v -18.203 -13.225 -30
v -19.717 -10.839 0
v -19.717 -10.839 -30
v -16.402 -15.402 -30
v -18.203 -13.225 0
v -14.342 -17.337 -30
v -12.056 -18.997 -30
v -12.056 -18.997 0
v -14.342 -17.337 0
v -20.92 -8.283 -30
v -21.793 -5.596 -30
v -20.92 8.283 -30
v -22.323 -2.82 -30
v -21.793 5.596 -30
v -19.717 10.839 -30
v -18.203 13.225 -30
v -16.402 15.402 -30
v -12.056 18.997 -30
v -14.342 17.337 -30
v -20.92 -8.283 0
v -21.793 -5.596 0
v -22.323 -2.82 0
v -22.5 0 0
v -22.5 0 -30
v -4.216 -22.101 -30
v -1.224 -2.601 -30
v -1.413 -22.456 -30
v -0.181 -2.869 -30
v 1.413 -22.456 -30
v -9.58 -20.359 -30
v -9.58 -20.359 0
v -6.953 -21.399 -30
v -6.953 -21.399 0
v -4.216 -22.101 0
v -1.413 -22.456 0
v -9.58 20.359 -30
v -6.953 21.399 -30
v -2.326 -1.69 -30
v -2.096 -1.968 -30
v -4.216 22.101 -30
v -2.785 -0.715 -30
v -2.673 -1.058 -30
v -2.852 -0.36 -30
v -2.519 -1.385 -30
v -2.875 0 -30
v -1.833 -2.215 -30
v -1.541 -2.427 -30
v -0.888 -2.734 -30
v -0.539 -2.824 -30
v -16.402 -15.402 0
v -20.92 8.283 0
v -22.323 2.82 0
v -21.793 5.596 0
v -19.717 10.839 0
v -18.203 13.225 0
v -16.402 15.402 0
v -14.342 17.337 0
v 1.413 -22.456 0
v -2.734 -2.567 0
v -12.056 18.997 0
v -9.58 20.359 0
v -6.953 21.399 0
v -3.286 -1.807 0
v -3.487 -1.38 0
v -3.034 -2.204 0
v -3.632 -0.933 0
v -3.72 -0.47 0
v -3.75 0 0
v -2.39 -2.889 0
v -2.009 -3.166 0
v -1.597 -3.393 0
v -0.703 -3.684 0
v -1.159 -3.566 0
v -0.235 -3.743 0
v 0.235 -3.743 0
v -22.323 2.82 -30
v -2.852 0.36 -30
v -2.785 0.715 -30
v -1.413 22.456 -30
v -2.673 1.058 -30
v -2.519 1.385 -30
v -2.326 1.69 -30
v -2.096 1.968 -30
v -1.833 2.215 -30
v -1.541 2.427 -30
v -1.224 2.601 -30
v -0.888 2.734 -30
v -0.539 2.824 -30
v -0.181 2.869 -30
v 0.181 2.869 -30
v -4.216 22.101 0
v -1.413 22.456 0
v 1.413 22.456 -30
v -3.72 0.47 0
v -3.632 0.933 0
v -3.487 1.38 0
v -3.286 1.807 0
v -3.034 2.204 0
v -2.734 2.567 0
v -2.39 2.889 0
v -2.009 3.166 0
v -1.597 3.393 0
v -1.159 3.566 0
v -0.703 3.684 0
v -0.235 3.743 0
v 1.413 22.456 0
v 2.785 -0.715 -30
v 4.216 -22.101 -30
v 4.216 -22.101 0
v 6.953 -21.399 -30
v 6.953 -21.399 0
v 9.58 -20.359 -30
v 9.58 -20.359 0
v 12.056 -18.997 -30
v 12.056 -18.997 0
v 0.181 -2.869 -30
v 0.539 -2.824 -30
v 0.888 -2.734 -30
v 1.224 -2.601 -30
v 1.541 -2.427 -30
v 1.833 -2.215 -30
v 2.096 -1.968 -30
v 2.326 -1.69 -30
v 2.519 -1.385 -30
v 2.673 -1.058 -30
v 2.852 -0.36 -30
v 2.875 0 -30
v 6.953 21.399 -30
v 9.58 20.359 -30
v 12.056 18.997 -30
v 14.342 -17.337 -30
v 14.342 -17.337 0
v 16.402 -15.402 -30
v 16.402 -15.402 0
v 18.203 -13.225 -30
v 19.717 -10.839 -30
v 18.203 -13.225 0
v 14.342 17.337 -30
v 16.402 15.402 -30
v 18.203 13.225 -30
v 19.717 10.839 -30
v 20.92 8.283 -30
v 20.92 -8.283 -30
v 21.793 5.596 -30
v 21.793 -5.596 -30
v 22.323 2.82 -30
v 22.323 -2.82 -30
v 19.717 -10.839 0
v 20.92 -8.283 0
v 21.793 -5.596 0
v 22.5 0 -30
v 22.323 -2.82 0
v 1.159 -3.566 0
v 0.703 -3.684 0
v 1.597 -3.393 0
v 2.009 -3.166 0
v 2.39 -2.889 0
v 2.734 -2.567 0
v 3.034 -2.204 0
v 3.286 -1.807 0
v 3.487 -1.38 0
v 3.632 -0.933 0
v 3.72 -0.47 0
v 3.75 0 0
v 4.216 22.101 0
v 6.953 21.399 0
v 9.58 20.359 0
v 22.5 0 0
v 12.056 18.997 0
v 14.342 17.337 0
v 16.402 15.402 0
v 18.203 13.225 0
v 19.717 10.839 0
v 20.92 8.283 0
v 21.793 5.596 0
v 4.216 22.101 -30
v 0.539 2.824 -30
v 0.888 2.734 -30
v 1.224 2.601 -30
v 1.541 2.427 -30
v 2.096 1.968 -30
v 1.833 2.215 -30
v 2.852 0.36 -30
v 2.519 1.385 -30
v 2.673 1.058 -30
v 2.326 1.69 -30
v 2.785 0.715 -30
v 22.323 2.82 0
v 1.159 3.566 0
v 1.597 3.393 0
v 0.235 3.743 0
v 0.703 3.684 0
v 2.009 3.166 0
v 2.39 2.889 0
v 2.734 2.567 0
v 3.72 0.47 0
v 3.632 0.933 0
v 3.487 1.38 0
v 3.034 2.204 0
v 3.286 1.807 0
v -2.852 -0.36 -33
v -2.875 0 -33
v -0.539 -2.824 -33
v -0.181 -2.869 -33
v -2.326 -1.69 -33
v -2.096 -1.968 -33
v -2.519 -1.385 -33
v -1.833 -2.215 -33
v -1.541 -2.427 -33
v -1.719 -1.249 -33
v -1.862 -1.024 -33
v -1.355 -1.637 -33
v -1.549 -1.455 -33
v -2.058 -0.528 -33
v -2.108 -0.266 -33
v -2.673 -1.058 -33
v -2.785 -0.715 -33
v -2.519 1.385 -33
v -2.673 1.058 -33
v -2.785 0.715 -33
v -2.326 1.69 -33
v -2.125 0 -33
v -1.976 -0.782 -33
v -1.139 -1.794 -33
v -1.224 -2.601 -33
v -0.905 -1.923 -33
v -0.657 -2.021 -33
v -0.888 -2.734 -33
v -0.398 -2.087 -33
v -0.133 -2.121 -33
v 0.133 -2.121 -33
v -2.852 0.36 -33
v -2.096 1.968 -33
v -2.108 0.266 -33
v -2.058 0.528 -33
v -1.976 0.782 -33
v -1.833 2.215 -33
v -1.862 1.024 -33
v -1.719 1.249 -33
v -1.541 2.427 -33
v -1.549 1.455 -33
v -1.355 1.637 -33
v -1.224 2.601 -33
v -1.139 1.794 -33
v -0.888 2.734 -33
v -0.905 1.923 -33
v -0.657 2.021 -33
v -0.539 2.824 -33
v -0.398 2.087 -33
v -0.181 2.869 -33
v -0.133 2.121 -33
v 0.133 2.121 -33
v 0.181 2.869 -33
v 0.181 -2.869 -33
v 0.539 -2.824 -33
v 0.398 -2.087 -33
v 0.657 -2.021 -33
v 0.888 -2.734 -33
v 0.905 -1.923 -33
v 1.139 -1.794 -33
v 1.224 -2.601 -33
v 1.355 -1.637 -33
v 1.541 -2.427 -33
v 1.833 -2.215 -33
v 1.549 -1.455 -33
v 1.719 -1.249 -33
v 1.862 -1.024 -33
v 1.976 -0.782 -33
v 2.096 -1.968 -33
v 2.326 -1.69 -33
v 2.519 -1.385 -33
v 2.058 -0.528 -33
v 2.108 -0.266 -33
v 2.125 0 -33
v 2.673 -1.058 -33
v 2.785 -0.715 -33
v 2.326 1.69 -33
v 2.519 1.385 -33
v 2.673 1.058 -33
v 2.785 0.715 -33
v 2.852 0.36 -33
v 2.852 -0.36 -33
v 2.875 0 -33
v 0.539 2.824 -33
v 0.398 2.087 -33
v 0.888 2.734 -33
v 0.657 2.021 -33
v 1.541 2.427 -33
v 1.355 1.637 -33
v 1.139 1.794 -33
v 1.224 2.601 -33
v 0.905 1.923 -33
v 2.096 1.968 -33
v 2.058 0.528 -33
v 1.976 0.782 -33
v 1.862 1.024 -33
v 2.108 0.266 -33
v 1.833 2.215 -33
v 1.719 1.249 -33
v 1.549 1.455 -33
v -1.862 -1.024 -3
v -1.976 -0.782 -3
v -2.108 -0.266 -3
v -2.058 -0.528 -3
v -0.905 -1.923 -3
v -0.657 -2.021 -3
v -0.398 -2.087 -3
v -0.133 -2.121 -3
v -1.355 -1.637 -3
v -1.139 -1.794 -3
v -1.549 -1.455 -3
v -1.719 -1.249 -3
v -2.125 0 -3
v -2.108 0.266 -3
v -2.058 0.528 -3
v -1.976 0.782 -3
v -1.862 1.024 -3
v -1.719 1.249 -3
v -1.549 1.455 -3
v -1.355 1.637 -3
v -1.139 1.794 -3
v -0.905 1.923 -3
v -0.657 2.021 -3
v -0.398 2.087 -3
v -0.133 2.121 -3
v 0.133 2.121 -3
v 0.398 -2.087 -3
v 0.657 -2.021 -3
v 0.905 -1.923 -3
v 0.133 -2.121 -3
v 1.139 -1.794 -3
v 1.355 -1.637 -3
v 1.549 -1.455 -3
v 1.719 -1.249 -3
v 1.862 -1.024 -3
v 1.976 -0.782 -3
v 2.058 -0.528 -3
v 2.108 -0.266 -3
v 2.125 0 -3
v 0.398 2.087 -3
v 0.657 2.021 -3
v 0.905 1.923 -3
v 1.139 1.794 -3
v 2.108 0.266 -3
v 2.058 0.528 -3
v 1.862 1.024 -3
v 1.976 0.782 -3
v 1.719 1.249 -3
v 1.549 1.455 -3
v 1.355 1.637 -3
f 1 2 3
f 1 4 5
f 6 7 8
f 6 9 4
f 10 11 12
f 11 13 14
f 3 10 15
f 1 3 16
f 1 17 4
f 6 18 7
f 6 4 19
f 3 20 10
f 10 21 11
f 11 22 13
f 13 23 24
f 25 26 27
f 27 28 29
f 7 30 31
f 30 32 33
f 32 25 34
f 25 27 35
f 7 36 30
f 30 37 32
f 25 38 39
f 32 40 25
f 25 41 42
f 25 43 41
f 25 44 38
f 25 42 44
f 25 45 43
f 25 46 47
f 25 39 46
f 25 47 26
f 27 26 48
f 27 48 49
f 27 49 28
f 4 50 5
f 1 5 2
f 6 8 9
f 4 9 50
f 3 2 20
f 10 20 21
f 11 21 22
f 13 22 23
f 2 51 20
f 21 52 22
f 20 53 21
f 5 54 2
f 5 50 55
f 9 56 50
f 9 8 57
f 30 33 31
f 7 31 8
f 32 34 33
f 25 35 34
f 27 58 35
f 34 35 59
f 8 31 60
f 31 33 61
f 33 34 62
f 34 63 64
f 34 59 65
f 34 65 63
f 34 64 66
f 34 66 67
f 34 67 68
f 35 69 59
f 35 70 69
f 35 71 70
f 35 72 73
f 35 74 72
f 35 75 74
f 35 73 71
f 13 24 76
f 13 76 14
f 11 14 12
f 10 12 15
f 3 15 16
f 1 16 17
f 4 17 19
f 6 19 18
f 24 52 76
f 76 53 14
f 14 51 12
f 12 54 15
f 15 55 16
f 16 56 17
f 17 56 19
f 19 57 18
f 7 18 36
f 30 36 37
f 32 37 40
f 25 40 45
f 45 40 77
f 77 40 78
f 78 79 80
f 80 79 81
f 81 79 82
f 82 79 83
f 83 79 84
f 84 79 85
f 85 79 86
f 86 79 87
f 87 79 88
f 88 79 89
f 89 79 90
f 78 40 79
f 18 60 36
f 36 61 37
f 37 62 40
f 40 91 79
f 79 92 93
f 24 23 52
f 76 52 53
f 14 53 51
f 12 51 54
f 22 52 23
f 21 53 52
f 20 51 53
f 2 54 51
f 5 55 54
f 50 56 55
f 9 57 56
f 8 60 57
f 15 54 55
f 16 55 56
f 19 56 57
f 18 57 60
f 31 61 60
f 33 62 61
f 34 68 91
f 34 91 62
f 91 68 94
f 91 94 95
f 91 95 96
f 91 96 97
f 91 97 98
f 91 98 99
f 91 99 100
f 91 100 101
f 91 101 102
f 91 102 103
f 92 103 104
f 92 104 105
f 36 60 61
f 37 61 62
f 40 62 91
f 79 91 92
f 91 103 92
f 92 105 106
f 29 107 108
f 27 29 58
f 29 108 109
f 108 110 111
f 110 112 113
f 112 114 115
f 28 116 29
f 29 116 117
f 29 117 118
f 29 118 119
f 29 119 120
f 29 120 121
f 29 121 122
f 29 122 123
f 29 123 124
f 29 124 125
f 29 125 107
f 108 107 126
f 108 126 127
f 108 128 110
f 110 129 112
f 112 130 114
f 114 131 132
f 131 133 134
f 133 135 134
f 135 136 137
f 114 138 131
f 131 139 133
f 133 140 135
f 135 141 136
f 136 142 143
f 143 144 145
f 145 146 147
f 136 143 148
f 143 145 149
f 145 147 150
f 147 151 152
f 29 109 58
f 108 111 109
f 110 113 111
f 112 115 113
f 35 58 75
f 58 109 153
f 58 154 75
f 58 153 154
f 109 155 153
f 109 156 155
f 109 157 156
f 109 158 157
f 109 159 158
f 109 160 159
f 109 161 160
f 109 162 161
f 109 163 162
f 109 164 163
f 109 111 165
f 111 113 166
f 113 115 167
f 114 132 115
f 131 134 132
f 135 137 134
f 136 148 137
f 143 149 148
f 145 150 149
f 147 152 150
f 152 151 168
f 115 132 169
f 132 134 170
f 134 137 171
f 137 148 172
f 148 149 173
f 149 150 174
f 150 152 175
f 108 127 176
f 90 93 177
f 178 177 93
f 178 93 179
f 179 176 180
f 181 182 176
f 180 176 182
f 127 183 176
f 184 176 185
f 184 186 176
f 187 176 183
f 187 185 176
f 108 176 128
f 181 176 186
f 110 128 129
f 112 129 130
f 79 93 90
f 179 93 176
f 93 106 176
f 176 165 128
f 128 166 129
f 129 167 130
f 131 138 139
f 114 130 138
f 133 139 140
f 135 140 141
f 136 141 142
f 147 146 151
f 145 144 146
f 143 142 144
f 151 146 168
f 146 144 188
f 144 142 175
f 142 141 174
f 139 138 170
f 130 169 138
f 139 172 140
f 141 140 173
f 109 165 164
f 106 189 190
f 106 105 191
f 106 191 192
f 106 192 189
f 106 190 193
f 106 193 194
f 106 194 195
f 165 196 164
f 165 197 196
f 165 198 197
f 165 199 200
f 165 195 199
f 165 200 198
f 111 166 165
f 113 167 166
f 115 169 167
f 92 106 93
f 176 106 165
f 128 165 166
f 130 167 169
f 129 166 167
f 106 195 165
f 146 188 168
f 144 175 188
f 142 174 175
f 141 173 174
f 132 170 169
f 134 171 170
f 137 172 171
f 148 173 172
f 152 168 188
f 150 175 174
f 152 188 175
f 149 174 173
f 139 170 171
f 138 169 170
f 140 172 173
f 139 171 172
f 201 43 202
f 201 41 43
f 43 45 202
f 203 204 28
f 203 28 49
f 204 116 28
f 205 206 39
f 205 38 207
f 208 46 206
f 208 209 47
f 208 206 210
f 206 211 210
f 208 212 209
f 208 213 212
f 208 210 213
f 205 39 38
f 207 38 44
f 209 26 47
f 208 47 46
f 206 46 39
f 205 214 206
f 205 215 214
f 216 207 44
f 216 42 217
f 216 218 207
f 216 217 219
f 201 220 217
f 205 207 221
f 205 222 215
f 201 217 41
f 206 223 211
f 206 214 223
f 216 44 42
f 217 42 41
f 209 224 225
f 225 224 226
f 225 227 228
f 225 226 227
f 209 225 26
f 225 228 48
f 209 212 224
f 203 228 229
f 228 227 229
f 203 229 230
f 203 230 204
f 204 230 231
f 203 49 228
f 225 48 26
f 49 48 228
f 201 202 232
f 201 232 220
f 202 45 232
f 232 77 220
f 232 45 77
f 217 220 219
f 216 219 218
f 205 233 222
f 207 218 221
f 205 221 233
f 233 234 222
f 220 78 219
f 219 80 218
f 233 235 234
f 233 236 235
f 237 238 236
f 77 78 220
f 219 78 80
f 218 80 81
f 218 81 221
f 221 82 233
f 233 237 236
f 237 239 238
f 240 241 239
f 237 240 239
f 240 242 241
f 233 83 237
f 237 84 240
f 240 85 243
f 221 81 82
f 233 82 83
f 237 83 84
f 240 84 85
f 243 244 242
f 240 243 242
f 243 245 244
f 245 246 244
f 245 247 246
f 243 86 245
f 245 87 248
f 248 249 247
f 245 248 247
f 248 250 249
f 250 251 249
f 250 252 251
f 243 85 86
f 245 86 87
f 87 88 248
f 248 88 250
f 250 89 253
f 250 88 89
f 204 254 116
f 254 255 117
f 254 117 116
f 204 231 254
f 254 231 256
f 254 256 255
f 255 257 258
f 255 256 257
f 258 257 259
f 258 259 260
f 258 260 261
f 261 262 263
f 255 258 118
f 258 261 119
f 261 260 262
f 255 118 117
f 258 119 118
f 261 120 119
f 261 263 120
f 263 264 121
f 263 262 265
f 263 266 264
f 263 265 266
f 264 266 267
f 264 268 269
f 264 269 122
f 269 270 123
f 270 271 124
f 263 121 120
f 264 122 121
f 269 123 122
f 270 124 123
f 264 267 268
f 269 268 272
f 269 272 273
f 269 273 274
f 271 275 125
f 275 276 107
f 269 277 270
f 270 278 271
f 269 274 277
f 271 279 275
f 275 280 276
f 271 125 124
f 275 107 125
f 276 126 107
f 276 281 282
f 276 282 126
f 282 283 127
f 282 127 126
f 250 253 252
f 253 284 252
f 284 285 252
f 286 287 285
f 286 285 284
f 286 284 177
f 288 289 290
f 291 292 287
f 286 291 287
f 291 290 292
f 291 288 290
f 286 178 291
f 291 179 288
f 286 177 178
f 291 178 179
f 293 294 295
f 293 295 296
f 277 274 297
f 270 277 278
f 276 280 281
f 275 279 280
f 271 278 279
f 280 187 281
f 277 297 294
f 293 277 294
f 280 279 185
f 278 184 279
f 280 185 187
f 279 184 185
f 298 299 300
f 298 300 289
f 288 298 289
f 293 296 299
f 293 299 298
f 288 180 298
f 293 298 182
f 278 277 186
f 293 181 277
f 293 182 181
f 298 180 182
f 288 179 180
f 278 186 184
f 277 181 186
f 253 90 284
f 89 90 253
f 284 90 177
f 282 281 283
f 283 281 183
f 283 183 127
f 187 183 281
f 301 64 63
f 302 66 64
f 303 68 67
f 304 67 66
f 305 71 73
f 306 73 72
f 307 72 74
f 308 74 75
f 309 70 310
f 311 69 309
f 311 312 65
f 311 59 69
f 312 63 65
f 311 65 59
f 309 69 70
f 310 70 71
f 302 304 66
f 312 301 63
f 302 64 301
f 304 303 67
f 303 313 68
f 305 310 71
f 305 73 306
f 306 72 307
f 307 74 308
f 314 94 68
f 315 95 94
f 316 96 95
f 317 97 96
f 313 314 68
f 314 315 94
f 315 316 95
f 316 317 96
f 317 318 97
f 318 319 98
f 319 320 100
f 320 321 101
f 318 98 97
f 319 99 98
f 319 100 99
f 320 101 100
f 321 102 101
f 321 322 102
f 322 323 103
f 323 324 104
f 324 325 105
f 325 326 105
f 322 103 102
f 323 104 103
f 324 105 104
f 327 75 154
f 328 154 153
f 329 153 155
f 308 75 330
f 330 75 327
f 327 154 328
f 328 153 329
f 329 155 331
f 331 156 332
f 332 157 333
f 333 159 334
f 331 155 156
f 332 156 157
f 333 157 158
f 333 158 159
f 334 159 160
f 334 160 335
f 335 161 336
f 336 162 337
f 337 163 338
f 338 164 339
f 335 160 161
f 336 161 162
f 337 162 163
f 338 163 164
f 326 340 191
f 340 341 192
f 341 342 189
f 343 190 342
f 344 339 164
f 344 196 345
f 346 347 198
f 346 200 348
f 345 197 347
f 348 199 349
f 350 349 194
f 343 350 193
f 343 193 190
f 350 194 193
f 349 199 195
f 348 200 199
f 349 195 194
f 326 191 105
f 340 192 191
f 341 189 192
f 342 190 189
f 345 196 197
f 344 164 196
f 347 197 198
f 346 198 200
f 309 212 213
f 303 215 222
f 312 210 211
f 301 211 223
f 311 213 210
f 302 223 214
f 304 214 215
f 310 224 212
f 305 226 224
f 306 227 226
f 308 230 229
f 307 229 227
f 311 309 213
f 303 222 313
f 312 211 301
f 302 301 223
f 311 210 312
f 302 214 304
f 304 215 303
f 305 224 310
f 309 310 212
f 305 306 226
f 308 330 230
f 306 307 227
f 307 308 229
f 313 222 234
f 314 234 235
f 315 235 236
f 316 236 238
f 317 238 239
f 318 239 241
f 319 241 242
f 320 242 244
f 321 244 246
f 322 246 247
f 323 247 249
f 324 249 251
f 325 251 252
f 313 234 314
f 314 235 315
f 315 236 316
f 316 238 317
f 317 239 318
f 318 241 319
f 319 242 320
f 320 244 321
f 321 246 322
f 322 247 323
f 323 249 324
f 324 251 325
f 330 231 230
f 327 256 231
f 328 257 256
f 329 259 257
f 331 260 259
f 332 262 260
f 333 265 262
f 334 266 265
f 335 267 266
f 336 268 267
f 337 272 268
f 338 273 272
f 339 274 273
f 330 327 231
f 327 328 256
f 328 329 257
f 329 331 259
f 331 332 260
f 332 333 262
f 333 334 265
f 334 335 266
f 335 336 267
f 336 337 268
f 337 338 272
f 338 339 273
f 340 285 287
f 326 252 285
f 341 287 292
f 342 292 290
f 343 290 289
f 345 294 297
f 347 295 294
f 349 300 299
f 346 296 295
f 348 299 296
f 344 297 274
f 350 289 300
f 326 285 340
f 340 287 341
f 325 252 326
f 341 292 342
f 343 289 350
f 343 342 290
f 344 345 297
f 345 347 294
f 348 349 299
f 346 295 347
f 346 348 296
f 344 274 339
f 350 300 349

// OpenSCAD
$fn = 50;

difference() {
	union() {
		translate(v = [0, 0, -30.0]) {
			cylinder(h = 30, r = 22.5);
		}
		#translate(v = [0, 0, -33.0]) {
			cylinder(h = 33, r = 2.875);
		}
	}
	union() {
		translate(v = [0, 0, 0]) {
			rotate(a = [0, 0, 0]) {
				difference() {
					union() {
						translate(v = [0, 0, -33.0]) {
							cylinder(h = 33, r = 2.0);
						}
						translate(v = [0, 0, -3]) {
							cylinder(h = 3, r1 = 2.125, r2 = 3.75);
						}
						translate(v = [0, 0, -33.0]) {
							cylinder(h = 33, r = 2.125);
						}
						translate(v = [0, 0, -33.0]) {
							cylinder(h = 33, r = 2.0);
						}
					}
					union();
				}
			}
		}
	}
}
